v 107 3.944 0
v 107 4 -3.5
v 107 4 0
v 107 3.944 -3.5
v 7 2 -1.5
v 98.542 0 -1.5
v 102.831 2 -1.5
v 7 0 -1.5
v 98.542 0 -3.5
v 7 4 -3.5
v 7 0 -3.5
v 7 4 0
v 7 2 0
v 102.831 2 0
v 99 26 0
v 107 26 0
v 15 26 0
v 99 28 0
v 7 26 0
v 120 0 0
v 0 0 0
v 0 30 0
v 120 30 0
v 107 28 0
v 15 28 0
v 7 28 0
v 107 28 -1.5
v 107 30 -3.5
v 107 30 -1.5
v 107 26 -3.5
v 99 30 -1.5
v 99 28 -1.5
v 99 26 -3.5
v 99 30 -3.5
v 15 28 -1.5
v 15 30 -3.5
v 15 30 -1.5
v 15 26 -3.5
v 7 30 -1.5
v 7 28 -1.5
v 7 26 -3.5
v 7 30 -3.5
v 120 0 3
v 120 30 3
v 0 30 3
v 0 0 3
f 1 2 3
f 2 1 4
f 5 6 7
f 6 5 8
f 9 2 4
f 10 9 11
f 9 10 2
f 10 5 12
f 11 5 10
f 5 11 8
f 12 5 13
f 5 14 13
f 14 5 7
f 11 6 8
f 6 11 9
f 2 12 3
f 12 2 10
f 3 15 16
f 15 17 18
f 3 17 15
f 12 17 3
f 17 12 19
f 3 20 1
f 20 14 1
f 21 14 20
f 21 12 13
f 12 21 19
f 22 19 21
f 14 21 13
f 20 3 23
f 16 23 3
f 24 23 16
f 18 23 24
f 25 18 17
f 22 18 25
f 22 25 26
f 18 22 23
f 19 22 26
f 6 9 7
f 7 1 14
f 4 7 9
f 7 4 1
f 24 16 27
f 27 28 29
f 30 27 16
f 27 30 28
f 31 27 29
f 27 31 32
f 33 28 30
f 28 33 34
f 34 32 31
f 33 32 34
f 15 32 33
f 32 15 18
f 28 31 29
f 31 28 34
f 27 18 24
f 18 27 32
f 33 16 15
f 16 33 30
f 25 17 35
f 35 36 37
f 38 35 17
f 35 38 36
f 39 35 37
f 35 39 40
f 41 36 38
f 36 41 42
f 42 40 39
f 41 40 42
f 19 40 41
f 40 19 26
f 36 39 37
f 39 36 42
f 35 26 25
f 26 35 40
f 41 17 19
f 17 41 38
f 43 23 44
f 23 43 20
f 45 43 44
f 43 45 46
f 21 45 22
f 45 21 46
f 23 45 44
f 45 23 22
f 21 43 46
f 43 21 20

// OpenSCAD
cube([120, 30, 3]);

//difference() {
//	translate([0, 0, 3])
//	rotate([0, 118, 0])
//	cube([15, 30, 3]);
//
//	translate([-7.5, -1, -15])
//	rotate([5, 0, 0])
//	cube([6, 32, 5]);
//
//}

translate([120 - 100, 0, -3.5]) {

	translate([-13, 0, 0]) {
		difference() {
			union() {
				cube([100, 2, 2]);
				translate([0, 2, 0])
				cube([100, 2, 4]);
			}
			translate([92, -4.2, -0.5])
			rotate([0, 0, 25])
			cube([12, 4, 4]);

		}
	}

}


translate([120 - 8, 30 - 2, -3.5]) {
	translate([-13, 0, 0]) {
		cube([8, 2, 2]);
		translate([0, -2, 0])
		cube([8, 2, 4]);
	}

	translate([-105, 0, 0]) {
		cube([8, 2, 2]);
		translate([0, -2, 0])
		cube([8, 2, 4]);
	}
}
